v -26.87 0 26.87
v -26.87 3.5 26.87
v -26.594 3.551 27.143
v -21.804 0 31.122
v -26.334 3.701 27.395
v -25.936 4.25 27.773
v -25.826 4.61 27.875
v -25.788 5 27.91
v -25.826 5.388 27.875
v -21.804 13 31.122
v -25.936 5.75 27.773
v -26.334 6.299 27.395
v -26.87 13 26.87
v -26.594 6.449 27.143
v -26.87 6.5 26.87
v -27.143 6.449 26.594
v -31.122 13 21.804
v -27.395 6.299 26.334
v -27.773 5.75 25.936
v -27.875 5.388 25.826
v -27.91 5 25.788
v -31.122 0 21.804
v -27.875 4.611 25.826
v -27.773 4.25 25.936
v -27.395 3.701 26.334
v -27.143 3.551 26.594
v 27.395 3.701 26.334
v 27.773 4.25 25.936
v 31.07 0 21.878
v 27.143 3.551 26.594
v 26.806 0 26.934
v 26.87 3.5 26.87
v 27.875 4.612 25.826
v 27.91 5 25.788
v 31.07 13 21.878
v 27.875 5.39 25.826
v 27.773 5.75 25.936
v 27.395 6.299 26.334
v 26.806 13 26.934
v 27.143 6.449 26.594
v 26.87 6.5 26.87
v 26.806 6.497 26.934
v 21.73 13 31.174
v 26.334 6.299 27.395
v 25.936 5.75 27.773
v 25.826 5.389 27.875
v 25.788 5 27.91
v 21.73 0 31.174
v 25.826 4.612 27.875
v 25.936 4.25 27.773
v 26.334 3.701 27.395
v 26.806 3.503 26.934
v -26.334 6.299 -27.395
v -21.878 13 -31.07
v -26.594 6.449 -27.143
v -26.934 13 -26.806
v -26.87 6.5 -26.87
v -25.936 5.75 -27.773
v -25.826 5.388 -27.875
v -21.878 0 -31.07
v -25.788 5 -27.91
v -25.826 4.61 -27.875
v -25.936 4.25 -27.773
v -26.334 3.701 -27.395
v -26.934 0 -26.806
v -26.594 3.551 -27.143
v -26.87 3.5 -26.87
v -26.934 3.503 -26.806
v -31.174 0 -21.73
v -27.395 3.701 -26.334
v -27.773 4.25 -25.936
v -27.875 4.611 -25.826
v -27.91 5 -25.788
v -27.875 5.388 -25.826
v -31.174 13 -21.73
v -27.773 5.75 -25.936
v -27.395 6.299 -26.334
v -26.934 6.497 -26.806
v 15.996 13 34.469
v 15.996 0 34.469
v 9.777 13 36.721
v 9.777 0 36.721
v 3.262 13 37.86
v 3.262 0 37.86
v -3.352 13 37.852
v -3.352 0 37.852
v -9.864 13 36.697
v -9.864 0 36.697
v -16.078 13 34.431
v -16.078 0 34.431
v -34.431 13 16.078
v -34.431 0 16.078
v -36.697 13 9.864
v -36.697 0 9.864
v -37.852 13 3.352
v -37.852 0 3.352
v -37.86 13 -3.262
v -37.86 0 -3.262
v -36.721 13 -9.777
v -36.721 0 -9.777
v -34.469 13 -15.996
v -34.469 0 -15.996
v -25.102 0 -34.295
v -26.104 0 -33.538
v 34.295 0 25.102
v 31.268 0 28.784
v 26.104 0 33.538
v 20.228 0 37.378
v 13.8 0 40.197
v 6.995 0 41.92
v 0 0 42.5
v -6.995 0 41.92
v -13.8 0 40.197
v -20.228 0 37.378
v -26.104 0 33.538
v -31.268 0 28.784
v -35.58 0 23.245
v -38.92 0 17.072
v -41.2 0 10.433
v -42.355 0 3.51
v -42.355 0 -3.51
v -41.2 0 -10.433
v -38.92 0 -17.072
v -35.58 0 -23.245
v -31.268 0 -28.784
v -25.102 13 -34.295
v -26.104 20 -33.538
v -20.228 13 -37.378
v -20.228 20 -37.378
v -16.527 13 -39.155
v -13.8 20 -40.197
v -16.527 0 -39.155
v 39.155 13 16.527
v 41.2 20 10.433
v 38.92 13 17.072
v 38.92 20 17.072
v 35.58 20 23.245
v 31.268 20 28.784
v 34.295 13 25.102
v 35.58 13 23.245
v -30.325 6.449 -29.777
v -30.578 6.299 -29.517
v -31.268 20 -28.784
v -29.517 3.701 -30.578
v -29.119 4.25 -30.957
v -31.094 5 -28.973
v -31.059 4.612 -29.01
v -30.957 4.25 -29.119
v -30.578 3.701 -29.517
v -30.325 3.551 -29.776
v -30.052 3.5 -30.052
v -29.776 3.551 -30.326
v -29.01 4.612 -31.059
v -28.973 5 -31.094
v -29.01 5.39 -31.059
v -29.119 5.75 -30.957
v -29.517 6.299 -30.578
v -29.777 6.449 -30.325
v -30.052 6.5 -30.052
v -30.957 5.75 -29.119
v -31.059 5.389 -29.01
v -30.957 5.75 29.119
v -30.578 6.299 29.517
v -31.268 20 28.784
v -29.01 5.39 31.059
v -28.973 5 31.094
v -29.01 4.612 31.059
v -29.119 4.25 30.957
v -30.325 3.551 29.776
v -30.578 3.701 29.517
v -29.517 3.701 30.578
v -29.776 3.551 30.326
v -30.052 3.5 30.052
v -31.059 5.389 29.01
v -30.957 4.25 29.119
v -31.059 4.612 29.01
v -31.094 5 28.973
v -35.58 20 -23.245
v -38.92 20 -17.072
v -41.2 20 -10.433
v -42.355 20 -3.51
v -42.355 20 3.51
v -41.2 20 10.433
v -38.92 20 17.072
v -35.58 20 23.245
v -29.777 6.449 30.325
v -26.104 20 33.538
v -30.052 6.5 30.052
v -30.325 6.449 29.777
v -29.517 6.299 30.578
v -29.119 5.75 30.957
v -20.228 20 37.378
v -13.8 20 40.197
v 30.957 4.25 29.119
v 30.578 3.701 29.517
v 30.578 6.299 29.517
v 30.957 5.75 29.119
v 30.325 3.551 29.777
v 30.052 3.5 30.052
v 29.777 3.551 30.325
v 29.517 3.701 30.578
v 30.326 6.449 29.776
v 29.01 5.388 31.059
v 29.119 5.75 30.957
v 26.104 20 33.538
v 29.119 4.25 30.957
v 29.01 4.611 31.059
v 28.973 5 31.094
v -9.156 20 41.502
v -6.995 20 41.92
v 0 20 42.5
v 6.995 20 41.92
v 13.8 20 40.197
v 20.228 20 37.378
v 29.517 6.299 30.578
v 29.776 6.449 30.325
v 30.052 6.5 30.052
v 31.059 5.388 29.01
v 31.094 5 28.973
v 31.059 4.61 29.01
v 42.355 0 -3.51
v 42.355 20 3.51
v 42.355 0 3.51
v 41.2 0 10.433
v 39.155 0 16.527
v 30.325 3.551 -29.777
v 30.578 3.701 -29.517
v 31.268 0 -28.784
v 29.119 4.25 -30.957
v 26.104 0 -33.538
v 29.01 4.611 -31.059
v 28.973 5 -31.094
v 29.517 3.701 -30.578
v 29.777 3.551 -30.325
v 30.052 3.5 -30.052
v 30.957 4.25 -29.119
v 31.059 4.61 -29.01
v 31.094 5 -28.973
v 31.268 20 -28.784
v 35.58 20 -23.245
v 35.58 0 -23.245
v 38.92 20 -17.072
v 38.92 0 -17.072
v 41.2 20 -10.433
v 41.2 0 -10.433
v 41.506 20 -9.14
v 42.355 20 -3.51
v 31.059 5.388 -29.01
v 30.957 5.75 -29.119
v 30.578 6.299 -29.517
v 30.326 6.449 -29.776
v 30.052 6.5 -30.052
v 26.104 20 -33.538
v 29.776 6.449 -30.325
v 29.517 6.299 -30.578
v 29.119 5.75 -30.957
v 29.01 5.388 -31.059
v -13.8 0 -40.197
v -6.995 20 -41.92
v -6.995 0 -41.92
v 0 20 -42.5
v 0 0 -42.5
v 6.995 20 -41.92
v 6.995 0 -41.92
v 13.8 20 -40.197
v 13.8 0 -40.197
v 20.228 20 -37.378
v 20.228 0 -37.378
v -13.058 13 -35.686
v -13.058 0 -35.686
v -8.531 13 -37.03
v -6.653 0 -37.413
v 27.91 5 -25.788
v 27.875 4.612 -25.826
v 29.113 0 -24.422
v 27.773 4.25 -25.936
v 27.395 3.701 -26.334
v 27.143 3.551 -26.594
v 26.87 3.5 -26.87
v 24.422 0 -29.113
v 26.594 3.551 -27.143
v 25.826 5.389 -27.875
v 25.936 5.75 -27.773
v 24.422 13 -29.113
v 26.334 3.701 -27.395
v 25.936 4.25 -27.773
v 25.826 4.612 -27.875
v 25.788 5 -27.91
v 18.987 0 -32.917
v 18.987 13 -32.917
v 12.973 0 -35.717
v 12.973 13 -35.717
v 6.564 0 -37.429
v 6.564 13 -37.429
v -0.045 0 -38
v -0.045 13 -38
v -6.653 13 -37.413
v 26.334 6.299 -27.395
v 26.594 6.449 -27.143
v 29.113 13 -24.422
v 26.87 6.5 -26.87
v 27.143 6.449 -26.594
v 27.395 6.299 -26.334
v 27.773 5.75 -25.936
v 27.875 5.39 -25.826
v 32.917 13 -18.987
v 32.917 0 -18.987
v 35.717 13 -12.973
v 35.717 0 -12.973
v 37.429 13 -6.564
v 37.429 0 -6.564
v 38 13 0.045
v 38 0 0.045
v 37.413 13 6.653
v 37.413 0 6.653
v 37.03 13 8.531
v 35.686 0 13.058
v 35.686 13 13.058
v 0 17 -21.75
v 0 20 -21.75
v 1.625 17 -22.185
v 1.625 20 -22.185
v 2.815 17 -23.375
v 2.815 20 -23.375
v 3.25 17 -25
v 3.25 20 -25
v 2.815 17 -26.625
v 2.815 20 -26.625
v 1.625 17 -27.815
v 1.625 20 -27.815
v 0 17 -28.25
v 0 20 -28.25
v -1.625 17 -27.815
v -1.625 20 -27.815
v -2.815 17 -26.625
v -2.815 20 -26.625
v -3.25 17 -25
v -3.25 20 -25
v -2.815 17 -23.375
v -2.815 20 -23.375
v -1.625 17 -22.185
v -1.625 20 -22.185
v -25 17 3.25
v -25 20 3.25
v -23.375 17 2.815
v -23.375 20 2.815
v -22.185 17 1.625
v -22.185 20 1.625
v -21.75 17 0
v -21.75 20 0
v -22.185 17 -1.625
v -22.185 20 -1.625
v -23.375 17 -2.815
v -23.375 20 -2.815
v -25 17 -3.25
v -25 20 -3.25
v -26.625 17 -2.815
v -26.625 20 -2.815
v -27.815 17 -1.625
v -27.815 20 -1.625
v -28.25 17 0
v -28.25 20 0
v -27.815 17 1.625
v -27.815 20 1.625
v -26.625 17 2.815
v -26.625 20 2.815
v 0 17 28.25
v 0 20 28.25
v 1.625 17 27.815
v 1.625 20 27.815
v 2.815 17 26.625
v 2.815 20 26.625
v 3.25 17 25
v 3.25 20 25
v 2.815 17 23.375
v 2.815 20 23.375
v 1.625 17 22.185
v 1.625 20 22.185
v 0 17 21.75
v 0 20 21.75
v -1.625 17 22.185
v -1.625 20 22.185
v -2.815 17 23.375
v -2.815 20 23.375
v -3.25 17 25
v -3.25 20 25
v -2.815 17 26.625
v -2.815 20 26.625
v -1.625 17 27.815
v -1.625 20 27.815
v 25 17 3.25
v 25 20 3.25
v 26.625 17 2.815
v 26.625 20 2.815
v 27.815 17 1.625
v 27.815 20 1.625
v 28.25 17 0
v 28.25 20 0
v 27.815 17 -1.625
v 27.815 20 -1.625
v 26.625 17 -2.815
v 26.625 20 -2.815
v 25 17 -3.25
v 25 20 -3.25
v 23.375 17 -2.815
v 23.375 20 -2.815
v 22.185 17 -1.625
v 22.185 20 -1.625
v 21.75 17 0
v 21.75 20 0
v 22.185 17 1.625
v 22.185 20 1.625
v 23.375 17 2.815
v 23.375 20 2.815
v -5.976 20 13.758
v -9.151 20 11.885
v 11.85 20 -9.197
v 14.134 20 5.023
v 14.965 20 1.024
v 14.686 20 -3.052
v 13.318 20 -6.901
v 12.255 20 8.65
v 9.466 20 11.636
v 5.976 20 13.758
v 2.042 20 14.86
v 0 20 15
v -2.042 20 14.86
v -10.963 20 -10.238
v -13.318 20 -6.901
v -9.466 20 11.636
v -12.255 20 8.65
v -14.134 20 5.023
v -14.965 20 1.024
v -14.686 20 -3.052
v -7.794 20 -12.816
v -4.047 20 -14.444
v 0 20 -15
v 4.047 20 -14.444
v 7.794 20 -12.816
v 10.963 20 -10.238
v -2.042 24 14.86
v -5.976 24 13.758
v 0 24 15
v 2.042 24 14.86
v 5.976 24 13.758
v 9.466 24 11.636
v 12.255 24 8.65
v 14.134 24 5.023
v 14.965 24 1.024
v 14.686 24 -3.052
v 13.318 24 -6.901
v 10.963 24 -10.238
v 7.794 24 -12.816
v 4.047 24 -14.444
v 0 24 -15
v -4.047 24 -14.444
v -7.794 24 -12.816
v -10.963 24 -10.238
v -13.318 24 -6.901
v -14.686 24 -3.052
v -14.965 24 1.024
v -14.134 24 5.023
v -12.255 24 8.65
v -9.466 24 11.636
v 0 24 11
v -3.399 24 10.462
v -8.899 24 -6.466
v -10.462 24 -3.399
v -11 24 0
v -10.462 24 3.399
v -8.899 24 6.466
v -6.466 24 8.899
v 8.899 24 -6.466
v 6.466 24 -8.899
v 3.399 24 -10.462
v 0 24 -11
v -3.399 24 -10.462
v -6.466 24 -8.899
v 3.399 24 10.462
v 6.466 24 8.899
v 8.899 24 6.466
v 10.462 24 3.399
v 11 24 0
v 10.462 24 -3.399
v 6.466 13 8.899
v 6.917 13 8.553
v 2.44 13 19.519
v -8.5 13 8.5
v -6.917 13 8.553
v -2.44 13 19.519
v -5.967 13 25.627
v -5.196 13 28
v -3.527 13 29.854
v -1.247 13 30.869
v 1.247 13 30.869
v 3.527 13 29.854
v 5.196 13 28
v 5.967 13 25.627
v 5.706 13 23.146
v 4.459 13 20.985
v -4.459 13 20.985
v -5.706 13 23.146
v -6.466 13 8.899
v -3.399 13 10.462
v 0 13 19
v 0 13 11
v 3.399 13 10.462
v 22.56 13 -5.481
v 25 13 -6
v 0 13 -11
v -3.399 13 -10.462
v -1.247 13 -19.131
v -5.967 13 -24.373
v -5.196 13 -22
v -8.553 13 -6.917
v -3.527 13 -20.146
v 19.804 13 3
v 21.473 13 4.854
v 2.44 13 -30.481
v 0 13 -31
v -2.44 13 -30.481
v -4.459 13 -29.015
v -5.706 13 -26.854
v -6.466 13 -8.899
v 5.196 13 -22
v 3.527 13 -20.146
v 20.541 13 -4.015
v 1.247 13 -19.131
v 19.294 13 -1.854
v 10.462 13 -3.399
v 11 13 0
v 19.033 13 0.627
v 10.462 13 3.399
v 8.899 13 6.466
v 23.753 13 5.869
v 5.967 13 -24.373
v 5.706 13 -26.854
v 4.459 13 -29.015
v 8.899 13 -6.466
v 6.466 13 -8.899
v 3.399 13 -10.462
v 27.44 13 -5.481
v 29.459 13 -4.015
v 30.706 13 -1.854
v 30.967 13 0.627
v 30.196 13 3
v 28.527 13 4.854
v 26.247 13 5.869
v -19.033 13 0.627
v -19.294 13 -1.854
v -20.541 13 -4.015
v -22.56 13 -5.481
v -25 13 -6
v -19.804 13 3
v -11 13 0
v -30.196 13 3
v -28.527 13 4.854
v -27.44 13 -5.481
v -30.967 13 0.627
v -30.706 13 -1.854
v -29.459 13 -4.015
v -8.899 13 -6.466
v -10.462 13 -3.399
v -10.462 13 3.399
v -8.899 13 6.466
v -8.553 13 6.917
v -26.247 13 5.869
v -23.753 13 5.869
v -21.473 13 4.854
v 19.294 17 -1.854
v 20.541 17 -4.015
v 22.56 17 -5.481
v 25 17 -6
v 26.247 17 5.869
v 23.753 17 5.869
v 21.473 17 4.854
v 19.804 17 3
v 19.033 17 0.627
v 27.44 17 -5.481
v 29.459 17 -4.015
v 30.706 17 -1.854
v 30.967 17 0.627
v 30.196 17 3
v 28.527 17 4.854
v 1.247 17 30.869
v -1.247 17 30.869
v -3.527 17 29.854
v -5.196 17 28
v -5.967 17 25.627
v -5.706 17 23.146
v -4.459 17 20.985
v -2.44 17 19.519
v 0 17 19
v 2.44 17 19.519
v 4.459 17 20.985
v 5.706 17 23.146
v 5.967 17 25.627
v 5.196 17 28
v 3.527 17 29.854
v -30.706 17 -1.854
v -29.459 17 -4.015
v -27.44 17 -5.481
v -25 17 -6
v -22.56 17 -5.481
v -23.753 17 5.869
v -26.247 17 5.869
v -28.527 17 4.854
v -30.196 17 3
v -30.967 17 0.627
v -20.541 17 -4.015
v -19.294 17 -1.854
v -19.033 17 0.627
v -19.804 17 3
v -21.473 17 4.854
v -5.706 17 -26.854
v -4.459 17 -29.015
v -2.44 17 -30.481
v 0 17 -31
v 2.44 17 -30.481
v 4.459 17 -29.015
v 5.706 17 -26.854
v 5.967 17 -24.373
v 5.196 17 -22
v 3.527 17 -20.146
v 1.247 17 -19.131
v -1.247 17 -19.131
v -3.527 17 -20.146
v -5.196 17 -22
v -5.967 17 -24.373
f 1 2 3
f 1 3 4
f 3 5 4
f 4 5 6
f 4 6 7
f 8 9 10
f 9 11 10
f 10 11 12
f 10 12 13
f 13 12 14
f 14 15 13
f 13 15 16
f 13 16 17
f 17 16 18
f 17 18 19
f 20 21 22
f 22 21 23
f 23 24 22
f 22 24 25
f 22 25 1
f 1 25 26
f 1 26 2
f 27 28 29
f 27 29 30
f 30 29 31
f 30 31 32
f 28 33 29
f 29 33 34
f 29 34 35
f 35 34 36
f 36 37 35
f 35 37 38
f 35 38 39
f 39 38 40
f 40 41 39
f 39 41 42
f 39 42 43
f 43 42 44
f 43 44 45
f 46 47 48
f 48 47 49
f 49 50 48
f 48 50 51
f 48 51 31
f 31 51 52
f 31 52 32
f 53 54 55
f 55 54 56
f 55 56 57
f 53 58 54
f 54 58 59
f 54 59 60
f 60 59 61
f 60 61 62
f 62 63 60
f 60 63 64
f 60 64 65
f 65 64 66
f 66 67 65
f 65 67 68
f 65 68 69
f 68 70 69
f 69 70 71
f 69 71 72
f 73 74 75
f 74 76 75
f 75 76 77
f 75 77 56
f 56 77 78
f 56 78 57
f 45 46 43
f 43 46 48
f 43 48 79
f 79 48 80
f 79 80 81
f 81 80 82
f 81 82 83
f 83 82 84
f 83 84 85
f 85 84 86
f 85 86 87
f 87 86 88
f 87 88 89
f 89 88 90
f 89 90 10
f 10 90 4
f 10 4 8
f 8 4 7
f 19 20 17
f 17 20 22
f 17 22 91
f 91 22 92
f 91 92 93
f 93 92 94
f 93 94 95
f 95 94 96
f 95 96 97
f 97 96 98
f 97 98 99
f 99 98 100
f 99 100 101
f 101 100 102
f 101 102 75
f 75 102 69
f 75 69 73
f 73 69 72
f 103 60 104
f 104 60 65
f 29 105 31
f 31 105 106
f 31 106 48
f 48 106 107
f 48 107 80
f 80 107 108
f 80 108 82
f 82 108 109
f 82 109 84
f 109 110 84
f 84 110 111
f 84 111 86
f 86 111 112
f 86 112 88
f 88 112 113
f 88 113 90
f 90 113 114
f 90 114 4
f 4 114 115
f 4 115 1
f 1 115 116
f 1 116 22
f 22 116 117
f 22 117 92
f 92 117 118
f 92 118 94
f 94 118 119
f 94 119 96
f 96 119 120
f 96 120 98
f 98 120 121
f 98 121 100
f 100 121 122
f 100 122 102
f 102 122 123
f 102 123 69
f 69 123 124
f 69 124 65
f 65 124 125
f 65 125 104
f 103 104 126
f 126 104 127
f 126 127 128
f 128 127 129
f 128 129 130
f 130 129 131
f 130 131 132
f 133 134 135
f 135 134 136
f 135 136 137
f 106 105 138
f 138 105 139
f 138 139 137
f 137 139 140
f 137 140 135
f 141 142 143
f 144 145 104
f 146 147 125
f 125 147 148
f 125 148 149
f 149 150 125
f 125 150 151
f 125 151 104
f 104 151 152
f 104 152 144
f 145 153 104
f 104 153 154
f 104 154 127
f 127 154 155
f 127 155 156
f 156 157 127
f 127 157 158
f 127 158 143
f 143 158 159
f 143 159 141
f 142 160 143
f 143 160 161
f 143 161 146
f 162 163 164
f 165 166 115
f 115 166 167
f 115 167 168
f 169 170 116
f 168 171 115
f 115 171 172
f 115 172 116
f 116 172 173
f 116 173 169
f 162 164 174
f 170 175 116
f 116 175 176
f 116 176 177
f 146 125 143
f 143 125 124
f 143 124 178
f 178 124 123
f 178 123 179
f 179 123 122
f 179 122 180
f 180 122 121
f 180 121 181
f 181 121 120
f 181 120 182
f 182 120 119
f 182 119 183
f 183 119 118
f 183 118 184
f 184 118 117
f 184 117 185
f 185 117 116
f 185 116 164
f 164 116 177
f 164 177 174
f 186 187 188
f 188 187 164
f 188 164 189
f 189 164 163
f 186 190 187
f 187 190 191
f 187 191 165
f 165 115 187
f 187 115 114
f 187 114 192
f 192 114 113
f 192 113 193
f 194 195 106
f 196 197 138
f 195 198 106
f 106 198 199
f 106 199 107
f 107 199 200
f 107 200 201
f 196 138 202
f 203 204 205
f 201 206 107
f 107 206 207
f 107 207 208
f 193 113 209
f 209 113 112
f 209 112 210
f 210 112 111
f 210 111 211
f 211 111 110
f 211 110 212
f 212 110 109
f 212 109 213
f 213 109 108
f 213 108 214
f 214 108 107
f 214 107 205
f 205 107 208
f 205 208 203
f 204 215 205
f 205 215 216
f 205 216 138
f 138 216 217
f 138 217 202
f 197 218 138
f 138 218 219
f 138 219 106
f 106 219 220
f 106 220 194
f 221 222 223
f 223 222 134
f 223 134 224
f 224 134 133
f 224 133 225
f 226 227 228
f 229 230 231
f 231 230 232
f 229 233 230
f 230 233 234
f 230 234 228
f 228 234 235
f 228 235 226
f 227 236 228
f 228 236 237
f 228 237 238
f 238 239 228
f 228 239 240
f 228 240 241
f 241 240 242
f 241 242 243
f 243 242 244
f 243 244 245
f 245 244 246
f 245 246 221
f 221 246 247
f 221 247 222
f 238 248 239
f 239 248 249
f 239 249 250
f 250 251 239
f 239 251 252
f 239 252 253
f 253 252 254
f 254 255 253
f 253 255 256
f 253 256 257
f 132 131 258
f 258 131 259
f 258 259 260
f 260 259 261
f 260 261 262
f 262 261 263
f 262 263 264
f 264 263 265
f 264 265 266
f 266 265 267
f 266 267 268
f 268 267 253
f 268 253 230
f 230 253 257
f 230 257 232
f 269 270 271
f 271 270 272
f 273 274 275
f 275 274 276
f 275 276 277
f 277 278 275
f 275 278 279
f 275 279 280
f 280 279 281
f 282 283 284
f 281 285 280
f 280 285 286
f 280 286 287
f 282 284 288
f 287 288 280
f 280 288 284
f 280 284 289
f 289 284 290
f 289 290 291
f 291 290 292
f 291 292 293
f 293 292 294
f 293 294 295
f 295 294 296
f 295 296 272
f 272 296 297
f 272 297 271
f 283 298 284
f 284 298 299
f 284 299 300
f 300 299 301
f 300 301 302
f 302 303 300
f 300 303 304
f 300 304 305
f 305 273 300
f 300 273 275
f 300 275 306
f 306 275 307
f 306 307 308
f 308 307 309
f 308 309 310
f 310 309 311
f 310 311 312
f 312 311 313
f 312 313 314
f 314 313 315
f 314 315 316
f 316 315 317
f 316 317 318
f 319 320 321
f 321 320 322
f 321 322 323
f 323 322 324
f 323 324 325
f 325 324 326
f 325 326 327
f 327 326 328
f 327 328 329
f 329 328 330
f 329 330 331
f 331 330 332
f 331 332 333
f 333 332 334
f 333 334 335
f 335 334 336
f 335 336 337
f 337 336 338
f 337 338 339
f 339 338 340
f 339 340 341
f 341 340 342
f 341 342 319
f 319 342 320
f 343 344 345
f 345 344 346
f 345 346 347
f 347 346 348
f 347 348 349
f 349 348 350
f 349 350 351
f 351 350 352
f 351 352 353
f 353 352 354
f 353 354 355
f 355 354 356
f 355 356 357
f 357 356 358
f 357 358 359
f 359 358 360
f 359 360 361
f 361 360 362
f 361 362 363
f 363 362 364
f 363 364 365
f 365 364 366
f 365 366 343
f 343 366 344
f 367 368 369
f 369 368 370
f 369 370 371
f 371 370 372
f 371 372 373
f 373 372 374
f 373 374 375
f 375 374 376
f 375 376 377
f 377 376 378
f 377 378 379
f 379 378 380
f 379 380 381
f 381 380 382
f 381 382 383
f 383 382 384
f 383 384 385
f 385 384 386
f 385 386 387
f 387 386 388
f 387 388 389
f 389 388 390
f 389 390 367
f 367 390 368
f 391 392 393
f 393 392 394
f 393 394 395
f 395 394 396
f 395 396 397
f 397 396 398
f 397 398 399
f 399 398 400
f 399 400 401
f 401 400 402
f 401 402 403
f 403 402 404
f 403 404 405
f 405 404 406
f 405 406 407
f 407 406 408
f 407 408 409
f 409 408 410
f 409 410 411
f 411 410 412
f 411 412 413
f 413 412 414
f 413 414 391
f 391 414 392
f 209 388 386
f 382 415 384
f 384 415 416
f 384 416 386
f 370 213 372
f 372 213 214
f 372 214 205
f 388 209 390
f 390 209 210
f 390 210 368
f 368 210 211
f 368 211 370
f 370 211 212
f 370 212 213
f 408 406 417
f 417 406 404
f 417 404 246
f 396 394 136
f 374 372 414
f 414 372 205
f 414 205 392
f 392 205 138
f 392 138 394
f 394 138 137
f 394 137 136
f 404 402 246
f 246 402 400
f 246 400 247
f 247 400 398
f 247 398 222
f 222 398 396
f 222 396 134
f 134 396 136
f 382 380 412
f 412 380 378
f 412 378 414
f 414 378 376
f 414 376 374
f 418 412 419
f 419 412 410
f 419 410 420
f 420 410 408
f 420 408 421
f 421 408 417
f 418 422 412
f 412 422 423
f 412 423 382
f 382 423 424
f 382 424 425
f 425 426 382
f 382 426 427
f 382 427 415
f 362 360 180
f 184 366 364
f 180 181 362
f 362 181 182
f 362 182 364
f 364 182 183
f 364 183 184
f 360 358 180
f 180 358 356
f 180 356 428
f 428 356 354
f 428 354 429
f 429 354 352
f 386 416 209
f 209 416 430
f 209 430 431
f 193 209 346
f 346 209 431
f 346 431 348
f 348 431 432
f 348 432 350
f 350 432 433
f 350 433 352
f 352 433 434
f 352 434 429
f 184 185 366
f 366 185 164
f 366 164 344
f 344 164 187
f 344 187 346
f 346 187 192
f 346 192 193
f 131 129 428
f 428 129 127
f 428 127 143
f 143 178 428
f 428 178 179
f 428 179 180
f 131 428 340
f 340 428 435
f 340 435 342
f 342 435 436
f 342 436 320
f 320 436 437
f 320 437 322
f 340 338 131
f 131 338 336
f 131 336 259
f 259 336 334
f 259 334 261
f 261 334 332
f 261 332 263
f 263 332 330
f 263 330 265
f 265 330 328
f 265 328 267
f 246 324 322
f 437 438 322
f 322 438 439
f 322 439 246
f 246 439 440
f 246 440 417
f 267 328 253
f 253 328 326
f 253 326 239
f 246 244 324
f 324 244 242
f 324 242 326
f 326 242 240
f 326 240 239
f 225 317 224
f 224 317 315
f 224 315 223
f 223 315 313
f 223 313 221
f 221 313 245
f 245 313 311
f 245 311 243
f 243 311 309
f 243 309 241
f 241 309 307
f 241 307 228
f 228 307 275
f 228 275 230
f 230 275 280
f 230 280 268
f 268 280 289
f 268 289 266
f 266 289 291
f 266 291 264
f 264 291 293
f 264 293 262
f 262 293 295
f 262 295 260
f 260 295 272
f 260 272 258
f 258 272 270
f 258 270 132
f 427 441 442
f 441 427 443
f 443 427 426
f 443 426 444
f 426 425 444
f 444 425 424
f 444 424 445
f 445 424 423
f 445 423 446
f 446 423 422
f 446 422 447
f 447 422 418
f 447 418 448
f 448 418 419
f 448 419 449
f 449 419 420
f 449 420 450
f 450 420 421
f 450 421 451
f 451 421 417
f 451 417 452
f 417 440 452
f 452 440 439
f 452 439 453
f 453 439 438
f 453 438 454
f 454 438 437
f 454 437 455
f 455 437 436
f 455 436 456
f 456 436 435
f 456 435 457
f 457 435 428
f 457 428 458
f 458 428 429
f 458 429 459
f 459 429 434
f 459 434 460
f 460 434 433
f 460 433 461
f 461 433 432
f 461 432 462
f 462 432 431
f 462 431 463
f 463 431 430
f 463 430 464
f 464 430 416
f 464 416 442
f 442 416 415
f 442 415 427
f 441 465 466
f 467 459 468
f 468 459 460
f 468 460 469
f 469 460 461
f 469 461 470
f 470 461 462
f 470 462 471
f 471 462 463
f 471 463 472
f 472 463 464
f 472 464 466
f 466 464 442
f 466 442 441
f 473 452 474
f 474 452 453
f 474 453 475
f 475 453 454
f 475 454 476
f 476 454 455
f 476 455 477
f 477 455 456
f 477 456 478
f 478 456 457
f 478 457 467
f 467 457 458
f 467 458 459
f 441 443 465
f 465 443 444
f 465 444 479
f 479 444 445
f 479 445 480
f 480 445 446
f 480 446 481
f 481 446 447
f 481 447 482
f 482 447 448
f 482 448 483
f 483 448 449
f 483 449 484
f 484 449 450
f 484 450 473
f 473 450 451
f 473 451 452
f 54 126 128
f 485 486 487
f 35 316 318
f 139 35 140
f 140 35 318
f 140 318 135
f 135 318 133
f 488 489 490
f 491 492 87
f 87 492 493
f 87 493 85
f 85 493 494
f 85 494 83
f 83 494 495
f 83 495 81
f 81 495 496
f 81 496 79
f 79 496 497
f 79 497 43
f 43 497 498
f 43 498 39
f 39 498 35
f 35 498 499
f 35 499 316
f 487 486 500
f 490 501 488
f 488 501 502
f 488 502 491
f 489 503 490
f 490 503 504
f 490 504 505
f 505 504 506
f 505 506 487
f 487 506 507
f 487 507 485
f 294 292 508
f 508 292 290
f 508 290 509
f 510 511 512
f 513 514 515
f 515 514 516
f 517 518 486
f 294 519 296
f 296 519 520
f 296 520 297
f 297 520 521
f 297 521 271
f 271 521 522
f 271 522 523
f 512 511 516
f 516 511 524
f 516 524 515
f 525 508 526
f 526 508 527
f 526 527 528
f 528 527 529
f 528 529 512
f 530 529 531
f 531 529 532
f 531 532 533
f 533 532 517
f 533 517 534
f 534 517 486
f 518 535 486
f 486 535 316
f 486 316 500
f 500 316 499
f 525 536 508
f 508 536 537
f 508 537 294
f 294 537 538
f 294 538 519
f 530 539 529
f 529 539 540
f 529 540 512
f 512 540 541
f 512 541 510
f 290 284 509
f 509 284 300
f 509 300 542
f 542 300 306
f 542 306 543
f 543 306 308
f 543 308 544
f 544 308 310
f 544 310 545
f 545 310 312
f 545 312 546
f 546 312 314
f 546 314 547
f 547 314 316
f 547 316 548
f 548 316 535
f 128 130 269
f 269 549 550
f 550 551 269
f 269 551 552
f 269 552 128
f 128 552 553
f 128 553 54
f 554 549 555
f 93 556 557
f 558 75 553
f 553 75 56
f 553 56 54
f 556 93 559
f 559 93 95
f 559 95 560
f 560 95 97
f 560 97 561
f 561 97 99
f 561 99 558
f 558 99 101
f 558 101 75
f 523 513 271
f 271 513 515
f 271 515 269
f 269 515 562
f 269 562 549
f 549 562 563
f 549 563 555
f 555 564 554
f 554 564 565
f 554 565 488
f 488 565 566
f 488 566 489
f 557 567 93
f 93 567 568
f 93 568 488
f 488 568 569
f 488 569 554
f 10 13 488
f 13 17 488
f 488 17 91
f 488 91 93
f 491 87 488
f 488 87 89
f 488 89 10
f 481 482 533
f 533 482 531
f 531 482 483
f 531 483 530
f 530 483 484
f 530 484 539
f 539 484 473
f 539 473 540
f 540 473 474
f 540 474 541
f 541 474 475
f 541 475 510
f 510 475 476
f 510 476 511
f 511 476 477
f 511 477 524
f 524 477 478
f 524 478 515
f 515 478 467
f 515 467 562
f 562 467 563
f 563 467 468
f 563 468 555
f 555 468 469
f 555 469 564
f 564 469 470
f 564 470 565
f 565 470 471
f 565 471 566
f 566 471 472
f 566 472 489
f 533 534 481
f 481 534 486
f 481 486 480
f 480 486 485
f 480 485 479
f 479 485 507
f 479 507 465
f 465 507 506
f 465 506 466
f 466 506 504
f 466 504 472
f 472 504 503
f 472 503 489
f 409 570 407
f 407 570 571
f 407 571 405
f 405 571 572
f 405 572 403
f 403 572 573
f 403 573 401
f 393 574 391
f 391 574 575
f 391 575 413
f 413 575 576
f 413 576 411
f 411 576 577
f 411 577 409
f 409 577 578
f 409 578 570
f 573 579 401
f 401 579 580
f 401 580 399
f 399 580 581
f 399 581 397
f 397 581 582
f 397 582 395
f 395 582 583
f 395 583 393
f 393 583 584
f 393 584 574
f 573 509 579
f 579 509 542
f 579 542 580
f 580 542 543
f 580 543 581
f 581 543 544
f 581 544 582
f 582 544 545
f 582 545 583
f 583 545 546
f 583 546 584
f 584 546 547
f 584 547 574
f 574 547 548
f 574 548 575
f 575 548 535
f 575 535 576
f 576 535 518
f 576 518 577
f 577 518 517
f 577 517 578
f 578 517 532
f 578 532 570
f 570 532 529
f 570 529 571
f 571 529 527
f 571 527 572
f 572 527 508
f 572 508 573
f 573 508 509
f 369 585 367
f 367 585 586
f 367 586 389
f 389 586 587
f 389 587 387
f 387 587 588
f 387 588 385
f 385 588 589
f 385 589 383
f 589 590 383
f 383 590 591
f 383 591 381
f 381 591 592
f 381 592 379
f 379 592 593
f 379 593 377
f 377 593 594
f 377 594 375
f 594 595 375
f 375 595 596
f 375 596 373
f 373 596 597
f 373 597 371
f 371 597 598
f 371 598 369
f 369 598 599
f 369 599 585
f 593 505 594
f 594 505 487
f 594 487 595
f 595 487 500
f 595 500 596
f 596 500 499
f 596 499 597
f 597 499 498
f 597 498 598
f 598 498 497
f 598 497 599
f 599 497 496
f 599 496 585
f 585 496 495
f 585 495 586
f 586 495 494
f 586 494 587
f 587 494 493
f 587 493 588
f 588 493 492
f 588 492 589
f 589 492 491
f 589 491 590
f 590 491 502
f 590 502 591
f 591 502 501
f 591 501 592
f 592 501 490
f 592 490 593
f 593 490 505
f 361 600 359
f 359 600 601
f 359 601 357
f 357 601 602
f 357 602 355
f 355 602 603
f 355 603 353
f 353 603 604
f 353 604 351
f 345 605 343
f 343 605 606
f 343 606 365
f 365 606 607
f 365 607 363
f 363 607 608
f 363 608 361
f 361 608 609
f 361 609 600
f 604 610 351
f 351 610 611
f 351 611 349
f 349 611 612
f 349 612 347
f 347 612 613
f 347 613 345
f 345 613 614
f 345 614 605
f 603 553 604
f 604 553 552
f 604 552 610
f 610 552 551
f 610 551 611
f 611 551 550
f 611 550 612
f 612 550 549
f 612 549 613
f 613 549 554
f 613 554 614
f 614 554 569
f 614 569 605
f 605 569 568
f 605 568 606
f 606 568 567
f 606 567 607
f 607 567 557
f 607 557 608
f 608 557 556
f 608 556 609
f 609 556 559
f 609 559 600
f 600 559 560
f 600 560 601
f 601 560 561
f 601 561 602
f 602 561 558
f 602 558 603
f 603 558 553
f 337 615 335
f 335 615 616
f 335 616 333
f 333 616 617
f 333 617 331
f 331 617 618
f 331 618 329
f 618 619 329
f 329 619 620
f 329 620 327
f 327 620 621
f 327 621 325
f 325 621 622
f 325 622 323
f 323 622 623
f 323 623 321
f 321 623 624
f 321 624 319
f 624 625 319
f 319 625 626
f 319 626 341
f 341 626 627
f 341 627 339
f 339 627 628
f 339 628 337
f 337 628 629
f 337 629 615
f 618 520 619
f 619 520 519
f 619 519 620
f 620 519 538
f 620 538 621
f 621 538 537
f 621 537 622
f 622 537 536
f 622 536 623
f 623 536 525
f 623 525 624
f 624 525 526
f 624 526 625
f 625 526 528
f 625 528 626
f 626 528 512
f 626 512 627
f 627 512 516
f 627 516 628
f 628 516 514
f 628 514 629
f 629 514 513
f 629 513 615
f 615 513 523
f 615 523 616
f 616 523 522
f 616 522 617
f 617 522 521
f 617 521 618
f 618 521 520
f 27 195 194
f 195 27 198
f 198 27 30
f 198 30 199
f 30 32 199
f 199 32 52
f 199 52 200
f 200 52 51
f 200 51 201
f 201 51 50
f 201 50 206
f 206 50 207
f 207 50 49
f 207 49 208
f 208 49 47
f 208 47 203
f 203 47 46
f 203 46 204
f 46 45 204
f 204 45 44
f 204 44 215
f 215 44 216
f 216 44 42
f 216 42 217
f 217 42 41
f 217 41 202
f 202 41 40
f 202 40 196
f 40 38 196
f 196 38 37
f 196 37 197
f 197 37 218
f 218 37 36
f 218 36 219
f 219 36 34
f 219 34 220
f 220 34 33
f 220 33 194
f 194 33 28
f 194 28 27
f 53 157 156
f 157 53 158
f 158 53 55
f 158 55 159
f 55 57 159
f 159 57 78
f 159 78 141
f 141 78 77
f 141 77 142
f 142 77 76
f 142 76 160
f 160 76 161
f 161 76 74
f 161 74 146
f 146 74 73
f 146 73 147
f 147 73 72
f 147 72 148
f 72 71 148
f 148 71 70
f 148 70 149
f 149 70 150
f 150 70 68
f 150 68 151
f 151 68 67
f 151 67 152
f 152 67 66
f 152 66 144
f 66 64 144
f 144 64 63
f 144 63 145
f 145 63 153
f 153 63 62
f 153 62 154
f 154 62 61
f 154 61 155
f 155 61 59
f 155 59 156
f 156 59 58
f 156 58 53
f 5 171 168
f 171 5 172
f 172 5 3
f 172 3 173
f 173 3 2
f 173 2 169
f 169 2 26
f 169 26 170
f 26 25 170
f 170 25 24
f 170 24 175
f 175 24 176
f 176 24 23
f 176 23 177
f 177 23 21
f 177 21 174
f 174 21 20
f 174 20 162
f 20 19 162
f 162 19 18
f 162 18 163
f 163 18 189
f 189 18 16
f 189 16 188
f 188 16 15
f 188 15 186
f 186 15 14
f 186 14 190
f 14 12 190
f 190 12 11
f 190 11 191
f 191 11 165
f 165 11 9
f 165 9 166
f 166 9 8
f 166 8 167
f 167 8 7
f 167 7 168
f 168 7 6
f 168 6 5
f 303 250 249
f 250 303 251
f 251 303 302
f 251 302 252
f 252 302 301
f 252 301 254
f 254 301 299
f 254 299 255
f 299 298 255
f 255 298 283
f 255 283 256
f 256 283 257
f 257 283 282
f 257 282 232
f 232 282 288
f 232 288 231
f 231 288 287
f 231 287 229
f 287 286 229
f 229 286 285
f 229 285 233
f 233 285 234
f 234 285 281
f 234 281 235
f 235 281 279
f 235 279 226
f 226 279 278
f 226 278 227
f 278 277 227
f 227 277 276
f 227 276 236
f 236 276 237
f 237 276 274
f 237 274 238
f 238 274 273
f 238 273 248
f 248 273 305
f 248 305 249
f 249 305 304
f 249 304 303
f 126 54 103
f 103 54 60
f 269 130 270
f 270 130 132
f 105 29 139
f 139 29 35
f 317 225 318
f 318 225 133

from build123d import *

# Parameters (mm, degrees)
SKETCH_1_R          = 42.5
EXTRUDE_1_DEPTH     = 20
SKETCH_2_R          = 15
EXTRUDE_2_DEPTH     = 4
SKETCH_3_R          = 38
CUT_EXTRUDE_1_DEPTH = 13
SKETCH_4_R          = 11
CUT_EXTRUDE_2_DEPTH = 20
SKETCH_5_R          = 3.25
CUT_EXTRUDE_3_DEPTH = 20
SKETCH_6_R          = 6
CUT_EXTRUDE_4_DEPTH = 4
SKETCH_8_R          = 1.5
CUT_EXTRUDE_5_DEPTH = 100
SKETCH_9_R          = 1.5
CUT_EXTRUDE_6_DEPTH = 100
CUT_EXTRUDE_7_DEPTH = 13


with BuildPart() as part:
    # ｽｹｯﾁ1 → ﾎﾞｽ - 押し出し1 (new body)
    with BuildSketch(Plane(origin=(0, 0, 0), x_dir=(1, 0, 0), z_dir=(0, 1, 0))):
        Circle(SKETCH_1_R)
    extrude(amount=EXTRUDE_1_DEPTH)

    # ｽｹｯﾁ2 → ﾎﾞｽ - 押し出し2 (add)
    with BuildSketch(Plane(origin=(0, 20, 0), x_dir=(1, 0, 0), z_dir=(0, 1, 0))):
        Circle(SKETCH_2_R)
    extrude(amount=EXTRUDE_2_DEPTH)

    # ｽｹｯﾁ3 → ｶｯﾄ - 押し出し1 (cut)
    with BuildSketch(Plane.XZ):
        Circle(SKETCH_3_R)
    extrude(amount=-CUT_EXTRUDE_1_DEPTH, mode=Mode.SUBTRACT)

    # ｽｹｯﾁ4 → ｶｯﾄ - 押し出し2 (cut)
    with BuildSketch(Plane(origin=(0, 24, 0), x_dir=(1, 0, 0), z_dir=(0, 1, 0))):
        Circle(SKETCH_4_R)
    extrude(amount=-CUT_EXTRUDE_2_DEPTH, mode=Mode.SUBTRACT)

    # ｽｹｯﾁ5 → ｶｯﾄ - 押し出し3 (cut)
    with BuildSketch(Plane(origin=(0, 20, 0), x_dir=(1, 0, 0), z_dir=(0, 1, 0))):
        with Locations((25, 0)):
            Circle(SKETCH_5_R)
        with Locations((0, -25)):
            Circle(SKETCH_5_R)
        with Locations((-25, 0)):
            Circle(SKETCH_5_R)
        with Locations((0, 25)):
            Circle(SKETCH_5_R)
    extrude(amount=-CUT_EXTRUDE_3_DEPTH, mode=Mode.SUBTRACT)

    # ｽｹｯﾁ6 → ｶｯﾄ - 押し出し4 (cut)
    with BuildSketch(Plane.XZ.offset(-13)):
        with Locations((25, 0)):
            Circle(SKETCH_6_R)
        with Locations((0, -25)):
            Circle(SKETCH_6_R)
        with Locations((-25, 0)):
            Circle(SKETCH_6_R)
        with Locations((0, 25)):
            Circle(SKETCH_6_R)
    extrude(amount=-CUT_EXTRUDE_4_DEPTH, mode=Mode.SUBTRACT)

    # ｽｹｯﾁ8 → ｶｯﾄ - 押し出し5 (cut)
    with BuildSketch(Plane(origin=(30.0520382, 0, 30.0520382), x_dir=(-0.707106781, 0, 0.707106781), z_dir=(-0.707106781, 0, -0.707106781))):
        with Locations((0, 5)):
            Circle(SKETCH_8_R)
    extrude(amount=CUT_EXTRUDE_5_DEPTH, mode=Mode.SUBTRACT)

    # ｽｹｯﾁ9 → ｶｯﾄ - 押し出し6 (cut)
    with BuildSketch(Plane(origin=(-30.0520382, 0, 30.0520382), x_dir=(0.707106781, 0, 0.707106781), z_dir=(-0.707106781, 0, 0.707106781))):
        with Locations((0, 5)):
            Circle(SKETCH_9_R)
    extrude(amount=-CUT_EXTRUDE_6_DEPTH, mode=Mode.SUBTRACT)

    # ｽｹｯﾁ10 → ｶｯﾄ - 押し出し7 (cut)
    with BuildSketch(Plane(origin=(0, 0, 0), x_dir=(-1, 0, 0), z_dir=(0, -1, 0))):
        Polygon((25.102290732, 34.294678888), (-34.294678888, -25.102290732), (-41.012193309, -18.384776311), (18.384776311, 41.012193309), align=None)
    extrude(amount=-CUT_EXTRUDE_7_DEPTH, mode=Mode.SUBTRACT)


solid = part.part
